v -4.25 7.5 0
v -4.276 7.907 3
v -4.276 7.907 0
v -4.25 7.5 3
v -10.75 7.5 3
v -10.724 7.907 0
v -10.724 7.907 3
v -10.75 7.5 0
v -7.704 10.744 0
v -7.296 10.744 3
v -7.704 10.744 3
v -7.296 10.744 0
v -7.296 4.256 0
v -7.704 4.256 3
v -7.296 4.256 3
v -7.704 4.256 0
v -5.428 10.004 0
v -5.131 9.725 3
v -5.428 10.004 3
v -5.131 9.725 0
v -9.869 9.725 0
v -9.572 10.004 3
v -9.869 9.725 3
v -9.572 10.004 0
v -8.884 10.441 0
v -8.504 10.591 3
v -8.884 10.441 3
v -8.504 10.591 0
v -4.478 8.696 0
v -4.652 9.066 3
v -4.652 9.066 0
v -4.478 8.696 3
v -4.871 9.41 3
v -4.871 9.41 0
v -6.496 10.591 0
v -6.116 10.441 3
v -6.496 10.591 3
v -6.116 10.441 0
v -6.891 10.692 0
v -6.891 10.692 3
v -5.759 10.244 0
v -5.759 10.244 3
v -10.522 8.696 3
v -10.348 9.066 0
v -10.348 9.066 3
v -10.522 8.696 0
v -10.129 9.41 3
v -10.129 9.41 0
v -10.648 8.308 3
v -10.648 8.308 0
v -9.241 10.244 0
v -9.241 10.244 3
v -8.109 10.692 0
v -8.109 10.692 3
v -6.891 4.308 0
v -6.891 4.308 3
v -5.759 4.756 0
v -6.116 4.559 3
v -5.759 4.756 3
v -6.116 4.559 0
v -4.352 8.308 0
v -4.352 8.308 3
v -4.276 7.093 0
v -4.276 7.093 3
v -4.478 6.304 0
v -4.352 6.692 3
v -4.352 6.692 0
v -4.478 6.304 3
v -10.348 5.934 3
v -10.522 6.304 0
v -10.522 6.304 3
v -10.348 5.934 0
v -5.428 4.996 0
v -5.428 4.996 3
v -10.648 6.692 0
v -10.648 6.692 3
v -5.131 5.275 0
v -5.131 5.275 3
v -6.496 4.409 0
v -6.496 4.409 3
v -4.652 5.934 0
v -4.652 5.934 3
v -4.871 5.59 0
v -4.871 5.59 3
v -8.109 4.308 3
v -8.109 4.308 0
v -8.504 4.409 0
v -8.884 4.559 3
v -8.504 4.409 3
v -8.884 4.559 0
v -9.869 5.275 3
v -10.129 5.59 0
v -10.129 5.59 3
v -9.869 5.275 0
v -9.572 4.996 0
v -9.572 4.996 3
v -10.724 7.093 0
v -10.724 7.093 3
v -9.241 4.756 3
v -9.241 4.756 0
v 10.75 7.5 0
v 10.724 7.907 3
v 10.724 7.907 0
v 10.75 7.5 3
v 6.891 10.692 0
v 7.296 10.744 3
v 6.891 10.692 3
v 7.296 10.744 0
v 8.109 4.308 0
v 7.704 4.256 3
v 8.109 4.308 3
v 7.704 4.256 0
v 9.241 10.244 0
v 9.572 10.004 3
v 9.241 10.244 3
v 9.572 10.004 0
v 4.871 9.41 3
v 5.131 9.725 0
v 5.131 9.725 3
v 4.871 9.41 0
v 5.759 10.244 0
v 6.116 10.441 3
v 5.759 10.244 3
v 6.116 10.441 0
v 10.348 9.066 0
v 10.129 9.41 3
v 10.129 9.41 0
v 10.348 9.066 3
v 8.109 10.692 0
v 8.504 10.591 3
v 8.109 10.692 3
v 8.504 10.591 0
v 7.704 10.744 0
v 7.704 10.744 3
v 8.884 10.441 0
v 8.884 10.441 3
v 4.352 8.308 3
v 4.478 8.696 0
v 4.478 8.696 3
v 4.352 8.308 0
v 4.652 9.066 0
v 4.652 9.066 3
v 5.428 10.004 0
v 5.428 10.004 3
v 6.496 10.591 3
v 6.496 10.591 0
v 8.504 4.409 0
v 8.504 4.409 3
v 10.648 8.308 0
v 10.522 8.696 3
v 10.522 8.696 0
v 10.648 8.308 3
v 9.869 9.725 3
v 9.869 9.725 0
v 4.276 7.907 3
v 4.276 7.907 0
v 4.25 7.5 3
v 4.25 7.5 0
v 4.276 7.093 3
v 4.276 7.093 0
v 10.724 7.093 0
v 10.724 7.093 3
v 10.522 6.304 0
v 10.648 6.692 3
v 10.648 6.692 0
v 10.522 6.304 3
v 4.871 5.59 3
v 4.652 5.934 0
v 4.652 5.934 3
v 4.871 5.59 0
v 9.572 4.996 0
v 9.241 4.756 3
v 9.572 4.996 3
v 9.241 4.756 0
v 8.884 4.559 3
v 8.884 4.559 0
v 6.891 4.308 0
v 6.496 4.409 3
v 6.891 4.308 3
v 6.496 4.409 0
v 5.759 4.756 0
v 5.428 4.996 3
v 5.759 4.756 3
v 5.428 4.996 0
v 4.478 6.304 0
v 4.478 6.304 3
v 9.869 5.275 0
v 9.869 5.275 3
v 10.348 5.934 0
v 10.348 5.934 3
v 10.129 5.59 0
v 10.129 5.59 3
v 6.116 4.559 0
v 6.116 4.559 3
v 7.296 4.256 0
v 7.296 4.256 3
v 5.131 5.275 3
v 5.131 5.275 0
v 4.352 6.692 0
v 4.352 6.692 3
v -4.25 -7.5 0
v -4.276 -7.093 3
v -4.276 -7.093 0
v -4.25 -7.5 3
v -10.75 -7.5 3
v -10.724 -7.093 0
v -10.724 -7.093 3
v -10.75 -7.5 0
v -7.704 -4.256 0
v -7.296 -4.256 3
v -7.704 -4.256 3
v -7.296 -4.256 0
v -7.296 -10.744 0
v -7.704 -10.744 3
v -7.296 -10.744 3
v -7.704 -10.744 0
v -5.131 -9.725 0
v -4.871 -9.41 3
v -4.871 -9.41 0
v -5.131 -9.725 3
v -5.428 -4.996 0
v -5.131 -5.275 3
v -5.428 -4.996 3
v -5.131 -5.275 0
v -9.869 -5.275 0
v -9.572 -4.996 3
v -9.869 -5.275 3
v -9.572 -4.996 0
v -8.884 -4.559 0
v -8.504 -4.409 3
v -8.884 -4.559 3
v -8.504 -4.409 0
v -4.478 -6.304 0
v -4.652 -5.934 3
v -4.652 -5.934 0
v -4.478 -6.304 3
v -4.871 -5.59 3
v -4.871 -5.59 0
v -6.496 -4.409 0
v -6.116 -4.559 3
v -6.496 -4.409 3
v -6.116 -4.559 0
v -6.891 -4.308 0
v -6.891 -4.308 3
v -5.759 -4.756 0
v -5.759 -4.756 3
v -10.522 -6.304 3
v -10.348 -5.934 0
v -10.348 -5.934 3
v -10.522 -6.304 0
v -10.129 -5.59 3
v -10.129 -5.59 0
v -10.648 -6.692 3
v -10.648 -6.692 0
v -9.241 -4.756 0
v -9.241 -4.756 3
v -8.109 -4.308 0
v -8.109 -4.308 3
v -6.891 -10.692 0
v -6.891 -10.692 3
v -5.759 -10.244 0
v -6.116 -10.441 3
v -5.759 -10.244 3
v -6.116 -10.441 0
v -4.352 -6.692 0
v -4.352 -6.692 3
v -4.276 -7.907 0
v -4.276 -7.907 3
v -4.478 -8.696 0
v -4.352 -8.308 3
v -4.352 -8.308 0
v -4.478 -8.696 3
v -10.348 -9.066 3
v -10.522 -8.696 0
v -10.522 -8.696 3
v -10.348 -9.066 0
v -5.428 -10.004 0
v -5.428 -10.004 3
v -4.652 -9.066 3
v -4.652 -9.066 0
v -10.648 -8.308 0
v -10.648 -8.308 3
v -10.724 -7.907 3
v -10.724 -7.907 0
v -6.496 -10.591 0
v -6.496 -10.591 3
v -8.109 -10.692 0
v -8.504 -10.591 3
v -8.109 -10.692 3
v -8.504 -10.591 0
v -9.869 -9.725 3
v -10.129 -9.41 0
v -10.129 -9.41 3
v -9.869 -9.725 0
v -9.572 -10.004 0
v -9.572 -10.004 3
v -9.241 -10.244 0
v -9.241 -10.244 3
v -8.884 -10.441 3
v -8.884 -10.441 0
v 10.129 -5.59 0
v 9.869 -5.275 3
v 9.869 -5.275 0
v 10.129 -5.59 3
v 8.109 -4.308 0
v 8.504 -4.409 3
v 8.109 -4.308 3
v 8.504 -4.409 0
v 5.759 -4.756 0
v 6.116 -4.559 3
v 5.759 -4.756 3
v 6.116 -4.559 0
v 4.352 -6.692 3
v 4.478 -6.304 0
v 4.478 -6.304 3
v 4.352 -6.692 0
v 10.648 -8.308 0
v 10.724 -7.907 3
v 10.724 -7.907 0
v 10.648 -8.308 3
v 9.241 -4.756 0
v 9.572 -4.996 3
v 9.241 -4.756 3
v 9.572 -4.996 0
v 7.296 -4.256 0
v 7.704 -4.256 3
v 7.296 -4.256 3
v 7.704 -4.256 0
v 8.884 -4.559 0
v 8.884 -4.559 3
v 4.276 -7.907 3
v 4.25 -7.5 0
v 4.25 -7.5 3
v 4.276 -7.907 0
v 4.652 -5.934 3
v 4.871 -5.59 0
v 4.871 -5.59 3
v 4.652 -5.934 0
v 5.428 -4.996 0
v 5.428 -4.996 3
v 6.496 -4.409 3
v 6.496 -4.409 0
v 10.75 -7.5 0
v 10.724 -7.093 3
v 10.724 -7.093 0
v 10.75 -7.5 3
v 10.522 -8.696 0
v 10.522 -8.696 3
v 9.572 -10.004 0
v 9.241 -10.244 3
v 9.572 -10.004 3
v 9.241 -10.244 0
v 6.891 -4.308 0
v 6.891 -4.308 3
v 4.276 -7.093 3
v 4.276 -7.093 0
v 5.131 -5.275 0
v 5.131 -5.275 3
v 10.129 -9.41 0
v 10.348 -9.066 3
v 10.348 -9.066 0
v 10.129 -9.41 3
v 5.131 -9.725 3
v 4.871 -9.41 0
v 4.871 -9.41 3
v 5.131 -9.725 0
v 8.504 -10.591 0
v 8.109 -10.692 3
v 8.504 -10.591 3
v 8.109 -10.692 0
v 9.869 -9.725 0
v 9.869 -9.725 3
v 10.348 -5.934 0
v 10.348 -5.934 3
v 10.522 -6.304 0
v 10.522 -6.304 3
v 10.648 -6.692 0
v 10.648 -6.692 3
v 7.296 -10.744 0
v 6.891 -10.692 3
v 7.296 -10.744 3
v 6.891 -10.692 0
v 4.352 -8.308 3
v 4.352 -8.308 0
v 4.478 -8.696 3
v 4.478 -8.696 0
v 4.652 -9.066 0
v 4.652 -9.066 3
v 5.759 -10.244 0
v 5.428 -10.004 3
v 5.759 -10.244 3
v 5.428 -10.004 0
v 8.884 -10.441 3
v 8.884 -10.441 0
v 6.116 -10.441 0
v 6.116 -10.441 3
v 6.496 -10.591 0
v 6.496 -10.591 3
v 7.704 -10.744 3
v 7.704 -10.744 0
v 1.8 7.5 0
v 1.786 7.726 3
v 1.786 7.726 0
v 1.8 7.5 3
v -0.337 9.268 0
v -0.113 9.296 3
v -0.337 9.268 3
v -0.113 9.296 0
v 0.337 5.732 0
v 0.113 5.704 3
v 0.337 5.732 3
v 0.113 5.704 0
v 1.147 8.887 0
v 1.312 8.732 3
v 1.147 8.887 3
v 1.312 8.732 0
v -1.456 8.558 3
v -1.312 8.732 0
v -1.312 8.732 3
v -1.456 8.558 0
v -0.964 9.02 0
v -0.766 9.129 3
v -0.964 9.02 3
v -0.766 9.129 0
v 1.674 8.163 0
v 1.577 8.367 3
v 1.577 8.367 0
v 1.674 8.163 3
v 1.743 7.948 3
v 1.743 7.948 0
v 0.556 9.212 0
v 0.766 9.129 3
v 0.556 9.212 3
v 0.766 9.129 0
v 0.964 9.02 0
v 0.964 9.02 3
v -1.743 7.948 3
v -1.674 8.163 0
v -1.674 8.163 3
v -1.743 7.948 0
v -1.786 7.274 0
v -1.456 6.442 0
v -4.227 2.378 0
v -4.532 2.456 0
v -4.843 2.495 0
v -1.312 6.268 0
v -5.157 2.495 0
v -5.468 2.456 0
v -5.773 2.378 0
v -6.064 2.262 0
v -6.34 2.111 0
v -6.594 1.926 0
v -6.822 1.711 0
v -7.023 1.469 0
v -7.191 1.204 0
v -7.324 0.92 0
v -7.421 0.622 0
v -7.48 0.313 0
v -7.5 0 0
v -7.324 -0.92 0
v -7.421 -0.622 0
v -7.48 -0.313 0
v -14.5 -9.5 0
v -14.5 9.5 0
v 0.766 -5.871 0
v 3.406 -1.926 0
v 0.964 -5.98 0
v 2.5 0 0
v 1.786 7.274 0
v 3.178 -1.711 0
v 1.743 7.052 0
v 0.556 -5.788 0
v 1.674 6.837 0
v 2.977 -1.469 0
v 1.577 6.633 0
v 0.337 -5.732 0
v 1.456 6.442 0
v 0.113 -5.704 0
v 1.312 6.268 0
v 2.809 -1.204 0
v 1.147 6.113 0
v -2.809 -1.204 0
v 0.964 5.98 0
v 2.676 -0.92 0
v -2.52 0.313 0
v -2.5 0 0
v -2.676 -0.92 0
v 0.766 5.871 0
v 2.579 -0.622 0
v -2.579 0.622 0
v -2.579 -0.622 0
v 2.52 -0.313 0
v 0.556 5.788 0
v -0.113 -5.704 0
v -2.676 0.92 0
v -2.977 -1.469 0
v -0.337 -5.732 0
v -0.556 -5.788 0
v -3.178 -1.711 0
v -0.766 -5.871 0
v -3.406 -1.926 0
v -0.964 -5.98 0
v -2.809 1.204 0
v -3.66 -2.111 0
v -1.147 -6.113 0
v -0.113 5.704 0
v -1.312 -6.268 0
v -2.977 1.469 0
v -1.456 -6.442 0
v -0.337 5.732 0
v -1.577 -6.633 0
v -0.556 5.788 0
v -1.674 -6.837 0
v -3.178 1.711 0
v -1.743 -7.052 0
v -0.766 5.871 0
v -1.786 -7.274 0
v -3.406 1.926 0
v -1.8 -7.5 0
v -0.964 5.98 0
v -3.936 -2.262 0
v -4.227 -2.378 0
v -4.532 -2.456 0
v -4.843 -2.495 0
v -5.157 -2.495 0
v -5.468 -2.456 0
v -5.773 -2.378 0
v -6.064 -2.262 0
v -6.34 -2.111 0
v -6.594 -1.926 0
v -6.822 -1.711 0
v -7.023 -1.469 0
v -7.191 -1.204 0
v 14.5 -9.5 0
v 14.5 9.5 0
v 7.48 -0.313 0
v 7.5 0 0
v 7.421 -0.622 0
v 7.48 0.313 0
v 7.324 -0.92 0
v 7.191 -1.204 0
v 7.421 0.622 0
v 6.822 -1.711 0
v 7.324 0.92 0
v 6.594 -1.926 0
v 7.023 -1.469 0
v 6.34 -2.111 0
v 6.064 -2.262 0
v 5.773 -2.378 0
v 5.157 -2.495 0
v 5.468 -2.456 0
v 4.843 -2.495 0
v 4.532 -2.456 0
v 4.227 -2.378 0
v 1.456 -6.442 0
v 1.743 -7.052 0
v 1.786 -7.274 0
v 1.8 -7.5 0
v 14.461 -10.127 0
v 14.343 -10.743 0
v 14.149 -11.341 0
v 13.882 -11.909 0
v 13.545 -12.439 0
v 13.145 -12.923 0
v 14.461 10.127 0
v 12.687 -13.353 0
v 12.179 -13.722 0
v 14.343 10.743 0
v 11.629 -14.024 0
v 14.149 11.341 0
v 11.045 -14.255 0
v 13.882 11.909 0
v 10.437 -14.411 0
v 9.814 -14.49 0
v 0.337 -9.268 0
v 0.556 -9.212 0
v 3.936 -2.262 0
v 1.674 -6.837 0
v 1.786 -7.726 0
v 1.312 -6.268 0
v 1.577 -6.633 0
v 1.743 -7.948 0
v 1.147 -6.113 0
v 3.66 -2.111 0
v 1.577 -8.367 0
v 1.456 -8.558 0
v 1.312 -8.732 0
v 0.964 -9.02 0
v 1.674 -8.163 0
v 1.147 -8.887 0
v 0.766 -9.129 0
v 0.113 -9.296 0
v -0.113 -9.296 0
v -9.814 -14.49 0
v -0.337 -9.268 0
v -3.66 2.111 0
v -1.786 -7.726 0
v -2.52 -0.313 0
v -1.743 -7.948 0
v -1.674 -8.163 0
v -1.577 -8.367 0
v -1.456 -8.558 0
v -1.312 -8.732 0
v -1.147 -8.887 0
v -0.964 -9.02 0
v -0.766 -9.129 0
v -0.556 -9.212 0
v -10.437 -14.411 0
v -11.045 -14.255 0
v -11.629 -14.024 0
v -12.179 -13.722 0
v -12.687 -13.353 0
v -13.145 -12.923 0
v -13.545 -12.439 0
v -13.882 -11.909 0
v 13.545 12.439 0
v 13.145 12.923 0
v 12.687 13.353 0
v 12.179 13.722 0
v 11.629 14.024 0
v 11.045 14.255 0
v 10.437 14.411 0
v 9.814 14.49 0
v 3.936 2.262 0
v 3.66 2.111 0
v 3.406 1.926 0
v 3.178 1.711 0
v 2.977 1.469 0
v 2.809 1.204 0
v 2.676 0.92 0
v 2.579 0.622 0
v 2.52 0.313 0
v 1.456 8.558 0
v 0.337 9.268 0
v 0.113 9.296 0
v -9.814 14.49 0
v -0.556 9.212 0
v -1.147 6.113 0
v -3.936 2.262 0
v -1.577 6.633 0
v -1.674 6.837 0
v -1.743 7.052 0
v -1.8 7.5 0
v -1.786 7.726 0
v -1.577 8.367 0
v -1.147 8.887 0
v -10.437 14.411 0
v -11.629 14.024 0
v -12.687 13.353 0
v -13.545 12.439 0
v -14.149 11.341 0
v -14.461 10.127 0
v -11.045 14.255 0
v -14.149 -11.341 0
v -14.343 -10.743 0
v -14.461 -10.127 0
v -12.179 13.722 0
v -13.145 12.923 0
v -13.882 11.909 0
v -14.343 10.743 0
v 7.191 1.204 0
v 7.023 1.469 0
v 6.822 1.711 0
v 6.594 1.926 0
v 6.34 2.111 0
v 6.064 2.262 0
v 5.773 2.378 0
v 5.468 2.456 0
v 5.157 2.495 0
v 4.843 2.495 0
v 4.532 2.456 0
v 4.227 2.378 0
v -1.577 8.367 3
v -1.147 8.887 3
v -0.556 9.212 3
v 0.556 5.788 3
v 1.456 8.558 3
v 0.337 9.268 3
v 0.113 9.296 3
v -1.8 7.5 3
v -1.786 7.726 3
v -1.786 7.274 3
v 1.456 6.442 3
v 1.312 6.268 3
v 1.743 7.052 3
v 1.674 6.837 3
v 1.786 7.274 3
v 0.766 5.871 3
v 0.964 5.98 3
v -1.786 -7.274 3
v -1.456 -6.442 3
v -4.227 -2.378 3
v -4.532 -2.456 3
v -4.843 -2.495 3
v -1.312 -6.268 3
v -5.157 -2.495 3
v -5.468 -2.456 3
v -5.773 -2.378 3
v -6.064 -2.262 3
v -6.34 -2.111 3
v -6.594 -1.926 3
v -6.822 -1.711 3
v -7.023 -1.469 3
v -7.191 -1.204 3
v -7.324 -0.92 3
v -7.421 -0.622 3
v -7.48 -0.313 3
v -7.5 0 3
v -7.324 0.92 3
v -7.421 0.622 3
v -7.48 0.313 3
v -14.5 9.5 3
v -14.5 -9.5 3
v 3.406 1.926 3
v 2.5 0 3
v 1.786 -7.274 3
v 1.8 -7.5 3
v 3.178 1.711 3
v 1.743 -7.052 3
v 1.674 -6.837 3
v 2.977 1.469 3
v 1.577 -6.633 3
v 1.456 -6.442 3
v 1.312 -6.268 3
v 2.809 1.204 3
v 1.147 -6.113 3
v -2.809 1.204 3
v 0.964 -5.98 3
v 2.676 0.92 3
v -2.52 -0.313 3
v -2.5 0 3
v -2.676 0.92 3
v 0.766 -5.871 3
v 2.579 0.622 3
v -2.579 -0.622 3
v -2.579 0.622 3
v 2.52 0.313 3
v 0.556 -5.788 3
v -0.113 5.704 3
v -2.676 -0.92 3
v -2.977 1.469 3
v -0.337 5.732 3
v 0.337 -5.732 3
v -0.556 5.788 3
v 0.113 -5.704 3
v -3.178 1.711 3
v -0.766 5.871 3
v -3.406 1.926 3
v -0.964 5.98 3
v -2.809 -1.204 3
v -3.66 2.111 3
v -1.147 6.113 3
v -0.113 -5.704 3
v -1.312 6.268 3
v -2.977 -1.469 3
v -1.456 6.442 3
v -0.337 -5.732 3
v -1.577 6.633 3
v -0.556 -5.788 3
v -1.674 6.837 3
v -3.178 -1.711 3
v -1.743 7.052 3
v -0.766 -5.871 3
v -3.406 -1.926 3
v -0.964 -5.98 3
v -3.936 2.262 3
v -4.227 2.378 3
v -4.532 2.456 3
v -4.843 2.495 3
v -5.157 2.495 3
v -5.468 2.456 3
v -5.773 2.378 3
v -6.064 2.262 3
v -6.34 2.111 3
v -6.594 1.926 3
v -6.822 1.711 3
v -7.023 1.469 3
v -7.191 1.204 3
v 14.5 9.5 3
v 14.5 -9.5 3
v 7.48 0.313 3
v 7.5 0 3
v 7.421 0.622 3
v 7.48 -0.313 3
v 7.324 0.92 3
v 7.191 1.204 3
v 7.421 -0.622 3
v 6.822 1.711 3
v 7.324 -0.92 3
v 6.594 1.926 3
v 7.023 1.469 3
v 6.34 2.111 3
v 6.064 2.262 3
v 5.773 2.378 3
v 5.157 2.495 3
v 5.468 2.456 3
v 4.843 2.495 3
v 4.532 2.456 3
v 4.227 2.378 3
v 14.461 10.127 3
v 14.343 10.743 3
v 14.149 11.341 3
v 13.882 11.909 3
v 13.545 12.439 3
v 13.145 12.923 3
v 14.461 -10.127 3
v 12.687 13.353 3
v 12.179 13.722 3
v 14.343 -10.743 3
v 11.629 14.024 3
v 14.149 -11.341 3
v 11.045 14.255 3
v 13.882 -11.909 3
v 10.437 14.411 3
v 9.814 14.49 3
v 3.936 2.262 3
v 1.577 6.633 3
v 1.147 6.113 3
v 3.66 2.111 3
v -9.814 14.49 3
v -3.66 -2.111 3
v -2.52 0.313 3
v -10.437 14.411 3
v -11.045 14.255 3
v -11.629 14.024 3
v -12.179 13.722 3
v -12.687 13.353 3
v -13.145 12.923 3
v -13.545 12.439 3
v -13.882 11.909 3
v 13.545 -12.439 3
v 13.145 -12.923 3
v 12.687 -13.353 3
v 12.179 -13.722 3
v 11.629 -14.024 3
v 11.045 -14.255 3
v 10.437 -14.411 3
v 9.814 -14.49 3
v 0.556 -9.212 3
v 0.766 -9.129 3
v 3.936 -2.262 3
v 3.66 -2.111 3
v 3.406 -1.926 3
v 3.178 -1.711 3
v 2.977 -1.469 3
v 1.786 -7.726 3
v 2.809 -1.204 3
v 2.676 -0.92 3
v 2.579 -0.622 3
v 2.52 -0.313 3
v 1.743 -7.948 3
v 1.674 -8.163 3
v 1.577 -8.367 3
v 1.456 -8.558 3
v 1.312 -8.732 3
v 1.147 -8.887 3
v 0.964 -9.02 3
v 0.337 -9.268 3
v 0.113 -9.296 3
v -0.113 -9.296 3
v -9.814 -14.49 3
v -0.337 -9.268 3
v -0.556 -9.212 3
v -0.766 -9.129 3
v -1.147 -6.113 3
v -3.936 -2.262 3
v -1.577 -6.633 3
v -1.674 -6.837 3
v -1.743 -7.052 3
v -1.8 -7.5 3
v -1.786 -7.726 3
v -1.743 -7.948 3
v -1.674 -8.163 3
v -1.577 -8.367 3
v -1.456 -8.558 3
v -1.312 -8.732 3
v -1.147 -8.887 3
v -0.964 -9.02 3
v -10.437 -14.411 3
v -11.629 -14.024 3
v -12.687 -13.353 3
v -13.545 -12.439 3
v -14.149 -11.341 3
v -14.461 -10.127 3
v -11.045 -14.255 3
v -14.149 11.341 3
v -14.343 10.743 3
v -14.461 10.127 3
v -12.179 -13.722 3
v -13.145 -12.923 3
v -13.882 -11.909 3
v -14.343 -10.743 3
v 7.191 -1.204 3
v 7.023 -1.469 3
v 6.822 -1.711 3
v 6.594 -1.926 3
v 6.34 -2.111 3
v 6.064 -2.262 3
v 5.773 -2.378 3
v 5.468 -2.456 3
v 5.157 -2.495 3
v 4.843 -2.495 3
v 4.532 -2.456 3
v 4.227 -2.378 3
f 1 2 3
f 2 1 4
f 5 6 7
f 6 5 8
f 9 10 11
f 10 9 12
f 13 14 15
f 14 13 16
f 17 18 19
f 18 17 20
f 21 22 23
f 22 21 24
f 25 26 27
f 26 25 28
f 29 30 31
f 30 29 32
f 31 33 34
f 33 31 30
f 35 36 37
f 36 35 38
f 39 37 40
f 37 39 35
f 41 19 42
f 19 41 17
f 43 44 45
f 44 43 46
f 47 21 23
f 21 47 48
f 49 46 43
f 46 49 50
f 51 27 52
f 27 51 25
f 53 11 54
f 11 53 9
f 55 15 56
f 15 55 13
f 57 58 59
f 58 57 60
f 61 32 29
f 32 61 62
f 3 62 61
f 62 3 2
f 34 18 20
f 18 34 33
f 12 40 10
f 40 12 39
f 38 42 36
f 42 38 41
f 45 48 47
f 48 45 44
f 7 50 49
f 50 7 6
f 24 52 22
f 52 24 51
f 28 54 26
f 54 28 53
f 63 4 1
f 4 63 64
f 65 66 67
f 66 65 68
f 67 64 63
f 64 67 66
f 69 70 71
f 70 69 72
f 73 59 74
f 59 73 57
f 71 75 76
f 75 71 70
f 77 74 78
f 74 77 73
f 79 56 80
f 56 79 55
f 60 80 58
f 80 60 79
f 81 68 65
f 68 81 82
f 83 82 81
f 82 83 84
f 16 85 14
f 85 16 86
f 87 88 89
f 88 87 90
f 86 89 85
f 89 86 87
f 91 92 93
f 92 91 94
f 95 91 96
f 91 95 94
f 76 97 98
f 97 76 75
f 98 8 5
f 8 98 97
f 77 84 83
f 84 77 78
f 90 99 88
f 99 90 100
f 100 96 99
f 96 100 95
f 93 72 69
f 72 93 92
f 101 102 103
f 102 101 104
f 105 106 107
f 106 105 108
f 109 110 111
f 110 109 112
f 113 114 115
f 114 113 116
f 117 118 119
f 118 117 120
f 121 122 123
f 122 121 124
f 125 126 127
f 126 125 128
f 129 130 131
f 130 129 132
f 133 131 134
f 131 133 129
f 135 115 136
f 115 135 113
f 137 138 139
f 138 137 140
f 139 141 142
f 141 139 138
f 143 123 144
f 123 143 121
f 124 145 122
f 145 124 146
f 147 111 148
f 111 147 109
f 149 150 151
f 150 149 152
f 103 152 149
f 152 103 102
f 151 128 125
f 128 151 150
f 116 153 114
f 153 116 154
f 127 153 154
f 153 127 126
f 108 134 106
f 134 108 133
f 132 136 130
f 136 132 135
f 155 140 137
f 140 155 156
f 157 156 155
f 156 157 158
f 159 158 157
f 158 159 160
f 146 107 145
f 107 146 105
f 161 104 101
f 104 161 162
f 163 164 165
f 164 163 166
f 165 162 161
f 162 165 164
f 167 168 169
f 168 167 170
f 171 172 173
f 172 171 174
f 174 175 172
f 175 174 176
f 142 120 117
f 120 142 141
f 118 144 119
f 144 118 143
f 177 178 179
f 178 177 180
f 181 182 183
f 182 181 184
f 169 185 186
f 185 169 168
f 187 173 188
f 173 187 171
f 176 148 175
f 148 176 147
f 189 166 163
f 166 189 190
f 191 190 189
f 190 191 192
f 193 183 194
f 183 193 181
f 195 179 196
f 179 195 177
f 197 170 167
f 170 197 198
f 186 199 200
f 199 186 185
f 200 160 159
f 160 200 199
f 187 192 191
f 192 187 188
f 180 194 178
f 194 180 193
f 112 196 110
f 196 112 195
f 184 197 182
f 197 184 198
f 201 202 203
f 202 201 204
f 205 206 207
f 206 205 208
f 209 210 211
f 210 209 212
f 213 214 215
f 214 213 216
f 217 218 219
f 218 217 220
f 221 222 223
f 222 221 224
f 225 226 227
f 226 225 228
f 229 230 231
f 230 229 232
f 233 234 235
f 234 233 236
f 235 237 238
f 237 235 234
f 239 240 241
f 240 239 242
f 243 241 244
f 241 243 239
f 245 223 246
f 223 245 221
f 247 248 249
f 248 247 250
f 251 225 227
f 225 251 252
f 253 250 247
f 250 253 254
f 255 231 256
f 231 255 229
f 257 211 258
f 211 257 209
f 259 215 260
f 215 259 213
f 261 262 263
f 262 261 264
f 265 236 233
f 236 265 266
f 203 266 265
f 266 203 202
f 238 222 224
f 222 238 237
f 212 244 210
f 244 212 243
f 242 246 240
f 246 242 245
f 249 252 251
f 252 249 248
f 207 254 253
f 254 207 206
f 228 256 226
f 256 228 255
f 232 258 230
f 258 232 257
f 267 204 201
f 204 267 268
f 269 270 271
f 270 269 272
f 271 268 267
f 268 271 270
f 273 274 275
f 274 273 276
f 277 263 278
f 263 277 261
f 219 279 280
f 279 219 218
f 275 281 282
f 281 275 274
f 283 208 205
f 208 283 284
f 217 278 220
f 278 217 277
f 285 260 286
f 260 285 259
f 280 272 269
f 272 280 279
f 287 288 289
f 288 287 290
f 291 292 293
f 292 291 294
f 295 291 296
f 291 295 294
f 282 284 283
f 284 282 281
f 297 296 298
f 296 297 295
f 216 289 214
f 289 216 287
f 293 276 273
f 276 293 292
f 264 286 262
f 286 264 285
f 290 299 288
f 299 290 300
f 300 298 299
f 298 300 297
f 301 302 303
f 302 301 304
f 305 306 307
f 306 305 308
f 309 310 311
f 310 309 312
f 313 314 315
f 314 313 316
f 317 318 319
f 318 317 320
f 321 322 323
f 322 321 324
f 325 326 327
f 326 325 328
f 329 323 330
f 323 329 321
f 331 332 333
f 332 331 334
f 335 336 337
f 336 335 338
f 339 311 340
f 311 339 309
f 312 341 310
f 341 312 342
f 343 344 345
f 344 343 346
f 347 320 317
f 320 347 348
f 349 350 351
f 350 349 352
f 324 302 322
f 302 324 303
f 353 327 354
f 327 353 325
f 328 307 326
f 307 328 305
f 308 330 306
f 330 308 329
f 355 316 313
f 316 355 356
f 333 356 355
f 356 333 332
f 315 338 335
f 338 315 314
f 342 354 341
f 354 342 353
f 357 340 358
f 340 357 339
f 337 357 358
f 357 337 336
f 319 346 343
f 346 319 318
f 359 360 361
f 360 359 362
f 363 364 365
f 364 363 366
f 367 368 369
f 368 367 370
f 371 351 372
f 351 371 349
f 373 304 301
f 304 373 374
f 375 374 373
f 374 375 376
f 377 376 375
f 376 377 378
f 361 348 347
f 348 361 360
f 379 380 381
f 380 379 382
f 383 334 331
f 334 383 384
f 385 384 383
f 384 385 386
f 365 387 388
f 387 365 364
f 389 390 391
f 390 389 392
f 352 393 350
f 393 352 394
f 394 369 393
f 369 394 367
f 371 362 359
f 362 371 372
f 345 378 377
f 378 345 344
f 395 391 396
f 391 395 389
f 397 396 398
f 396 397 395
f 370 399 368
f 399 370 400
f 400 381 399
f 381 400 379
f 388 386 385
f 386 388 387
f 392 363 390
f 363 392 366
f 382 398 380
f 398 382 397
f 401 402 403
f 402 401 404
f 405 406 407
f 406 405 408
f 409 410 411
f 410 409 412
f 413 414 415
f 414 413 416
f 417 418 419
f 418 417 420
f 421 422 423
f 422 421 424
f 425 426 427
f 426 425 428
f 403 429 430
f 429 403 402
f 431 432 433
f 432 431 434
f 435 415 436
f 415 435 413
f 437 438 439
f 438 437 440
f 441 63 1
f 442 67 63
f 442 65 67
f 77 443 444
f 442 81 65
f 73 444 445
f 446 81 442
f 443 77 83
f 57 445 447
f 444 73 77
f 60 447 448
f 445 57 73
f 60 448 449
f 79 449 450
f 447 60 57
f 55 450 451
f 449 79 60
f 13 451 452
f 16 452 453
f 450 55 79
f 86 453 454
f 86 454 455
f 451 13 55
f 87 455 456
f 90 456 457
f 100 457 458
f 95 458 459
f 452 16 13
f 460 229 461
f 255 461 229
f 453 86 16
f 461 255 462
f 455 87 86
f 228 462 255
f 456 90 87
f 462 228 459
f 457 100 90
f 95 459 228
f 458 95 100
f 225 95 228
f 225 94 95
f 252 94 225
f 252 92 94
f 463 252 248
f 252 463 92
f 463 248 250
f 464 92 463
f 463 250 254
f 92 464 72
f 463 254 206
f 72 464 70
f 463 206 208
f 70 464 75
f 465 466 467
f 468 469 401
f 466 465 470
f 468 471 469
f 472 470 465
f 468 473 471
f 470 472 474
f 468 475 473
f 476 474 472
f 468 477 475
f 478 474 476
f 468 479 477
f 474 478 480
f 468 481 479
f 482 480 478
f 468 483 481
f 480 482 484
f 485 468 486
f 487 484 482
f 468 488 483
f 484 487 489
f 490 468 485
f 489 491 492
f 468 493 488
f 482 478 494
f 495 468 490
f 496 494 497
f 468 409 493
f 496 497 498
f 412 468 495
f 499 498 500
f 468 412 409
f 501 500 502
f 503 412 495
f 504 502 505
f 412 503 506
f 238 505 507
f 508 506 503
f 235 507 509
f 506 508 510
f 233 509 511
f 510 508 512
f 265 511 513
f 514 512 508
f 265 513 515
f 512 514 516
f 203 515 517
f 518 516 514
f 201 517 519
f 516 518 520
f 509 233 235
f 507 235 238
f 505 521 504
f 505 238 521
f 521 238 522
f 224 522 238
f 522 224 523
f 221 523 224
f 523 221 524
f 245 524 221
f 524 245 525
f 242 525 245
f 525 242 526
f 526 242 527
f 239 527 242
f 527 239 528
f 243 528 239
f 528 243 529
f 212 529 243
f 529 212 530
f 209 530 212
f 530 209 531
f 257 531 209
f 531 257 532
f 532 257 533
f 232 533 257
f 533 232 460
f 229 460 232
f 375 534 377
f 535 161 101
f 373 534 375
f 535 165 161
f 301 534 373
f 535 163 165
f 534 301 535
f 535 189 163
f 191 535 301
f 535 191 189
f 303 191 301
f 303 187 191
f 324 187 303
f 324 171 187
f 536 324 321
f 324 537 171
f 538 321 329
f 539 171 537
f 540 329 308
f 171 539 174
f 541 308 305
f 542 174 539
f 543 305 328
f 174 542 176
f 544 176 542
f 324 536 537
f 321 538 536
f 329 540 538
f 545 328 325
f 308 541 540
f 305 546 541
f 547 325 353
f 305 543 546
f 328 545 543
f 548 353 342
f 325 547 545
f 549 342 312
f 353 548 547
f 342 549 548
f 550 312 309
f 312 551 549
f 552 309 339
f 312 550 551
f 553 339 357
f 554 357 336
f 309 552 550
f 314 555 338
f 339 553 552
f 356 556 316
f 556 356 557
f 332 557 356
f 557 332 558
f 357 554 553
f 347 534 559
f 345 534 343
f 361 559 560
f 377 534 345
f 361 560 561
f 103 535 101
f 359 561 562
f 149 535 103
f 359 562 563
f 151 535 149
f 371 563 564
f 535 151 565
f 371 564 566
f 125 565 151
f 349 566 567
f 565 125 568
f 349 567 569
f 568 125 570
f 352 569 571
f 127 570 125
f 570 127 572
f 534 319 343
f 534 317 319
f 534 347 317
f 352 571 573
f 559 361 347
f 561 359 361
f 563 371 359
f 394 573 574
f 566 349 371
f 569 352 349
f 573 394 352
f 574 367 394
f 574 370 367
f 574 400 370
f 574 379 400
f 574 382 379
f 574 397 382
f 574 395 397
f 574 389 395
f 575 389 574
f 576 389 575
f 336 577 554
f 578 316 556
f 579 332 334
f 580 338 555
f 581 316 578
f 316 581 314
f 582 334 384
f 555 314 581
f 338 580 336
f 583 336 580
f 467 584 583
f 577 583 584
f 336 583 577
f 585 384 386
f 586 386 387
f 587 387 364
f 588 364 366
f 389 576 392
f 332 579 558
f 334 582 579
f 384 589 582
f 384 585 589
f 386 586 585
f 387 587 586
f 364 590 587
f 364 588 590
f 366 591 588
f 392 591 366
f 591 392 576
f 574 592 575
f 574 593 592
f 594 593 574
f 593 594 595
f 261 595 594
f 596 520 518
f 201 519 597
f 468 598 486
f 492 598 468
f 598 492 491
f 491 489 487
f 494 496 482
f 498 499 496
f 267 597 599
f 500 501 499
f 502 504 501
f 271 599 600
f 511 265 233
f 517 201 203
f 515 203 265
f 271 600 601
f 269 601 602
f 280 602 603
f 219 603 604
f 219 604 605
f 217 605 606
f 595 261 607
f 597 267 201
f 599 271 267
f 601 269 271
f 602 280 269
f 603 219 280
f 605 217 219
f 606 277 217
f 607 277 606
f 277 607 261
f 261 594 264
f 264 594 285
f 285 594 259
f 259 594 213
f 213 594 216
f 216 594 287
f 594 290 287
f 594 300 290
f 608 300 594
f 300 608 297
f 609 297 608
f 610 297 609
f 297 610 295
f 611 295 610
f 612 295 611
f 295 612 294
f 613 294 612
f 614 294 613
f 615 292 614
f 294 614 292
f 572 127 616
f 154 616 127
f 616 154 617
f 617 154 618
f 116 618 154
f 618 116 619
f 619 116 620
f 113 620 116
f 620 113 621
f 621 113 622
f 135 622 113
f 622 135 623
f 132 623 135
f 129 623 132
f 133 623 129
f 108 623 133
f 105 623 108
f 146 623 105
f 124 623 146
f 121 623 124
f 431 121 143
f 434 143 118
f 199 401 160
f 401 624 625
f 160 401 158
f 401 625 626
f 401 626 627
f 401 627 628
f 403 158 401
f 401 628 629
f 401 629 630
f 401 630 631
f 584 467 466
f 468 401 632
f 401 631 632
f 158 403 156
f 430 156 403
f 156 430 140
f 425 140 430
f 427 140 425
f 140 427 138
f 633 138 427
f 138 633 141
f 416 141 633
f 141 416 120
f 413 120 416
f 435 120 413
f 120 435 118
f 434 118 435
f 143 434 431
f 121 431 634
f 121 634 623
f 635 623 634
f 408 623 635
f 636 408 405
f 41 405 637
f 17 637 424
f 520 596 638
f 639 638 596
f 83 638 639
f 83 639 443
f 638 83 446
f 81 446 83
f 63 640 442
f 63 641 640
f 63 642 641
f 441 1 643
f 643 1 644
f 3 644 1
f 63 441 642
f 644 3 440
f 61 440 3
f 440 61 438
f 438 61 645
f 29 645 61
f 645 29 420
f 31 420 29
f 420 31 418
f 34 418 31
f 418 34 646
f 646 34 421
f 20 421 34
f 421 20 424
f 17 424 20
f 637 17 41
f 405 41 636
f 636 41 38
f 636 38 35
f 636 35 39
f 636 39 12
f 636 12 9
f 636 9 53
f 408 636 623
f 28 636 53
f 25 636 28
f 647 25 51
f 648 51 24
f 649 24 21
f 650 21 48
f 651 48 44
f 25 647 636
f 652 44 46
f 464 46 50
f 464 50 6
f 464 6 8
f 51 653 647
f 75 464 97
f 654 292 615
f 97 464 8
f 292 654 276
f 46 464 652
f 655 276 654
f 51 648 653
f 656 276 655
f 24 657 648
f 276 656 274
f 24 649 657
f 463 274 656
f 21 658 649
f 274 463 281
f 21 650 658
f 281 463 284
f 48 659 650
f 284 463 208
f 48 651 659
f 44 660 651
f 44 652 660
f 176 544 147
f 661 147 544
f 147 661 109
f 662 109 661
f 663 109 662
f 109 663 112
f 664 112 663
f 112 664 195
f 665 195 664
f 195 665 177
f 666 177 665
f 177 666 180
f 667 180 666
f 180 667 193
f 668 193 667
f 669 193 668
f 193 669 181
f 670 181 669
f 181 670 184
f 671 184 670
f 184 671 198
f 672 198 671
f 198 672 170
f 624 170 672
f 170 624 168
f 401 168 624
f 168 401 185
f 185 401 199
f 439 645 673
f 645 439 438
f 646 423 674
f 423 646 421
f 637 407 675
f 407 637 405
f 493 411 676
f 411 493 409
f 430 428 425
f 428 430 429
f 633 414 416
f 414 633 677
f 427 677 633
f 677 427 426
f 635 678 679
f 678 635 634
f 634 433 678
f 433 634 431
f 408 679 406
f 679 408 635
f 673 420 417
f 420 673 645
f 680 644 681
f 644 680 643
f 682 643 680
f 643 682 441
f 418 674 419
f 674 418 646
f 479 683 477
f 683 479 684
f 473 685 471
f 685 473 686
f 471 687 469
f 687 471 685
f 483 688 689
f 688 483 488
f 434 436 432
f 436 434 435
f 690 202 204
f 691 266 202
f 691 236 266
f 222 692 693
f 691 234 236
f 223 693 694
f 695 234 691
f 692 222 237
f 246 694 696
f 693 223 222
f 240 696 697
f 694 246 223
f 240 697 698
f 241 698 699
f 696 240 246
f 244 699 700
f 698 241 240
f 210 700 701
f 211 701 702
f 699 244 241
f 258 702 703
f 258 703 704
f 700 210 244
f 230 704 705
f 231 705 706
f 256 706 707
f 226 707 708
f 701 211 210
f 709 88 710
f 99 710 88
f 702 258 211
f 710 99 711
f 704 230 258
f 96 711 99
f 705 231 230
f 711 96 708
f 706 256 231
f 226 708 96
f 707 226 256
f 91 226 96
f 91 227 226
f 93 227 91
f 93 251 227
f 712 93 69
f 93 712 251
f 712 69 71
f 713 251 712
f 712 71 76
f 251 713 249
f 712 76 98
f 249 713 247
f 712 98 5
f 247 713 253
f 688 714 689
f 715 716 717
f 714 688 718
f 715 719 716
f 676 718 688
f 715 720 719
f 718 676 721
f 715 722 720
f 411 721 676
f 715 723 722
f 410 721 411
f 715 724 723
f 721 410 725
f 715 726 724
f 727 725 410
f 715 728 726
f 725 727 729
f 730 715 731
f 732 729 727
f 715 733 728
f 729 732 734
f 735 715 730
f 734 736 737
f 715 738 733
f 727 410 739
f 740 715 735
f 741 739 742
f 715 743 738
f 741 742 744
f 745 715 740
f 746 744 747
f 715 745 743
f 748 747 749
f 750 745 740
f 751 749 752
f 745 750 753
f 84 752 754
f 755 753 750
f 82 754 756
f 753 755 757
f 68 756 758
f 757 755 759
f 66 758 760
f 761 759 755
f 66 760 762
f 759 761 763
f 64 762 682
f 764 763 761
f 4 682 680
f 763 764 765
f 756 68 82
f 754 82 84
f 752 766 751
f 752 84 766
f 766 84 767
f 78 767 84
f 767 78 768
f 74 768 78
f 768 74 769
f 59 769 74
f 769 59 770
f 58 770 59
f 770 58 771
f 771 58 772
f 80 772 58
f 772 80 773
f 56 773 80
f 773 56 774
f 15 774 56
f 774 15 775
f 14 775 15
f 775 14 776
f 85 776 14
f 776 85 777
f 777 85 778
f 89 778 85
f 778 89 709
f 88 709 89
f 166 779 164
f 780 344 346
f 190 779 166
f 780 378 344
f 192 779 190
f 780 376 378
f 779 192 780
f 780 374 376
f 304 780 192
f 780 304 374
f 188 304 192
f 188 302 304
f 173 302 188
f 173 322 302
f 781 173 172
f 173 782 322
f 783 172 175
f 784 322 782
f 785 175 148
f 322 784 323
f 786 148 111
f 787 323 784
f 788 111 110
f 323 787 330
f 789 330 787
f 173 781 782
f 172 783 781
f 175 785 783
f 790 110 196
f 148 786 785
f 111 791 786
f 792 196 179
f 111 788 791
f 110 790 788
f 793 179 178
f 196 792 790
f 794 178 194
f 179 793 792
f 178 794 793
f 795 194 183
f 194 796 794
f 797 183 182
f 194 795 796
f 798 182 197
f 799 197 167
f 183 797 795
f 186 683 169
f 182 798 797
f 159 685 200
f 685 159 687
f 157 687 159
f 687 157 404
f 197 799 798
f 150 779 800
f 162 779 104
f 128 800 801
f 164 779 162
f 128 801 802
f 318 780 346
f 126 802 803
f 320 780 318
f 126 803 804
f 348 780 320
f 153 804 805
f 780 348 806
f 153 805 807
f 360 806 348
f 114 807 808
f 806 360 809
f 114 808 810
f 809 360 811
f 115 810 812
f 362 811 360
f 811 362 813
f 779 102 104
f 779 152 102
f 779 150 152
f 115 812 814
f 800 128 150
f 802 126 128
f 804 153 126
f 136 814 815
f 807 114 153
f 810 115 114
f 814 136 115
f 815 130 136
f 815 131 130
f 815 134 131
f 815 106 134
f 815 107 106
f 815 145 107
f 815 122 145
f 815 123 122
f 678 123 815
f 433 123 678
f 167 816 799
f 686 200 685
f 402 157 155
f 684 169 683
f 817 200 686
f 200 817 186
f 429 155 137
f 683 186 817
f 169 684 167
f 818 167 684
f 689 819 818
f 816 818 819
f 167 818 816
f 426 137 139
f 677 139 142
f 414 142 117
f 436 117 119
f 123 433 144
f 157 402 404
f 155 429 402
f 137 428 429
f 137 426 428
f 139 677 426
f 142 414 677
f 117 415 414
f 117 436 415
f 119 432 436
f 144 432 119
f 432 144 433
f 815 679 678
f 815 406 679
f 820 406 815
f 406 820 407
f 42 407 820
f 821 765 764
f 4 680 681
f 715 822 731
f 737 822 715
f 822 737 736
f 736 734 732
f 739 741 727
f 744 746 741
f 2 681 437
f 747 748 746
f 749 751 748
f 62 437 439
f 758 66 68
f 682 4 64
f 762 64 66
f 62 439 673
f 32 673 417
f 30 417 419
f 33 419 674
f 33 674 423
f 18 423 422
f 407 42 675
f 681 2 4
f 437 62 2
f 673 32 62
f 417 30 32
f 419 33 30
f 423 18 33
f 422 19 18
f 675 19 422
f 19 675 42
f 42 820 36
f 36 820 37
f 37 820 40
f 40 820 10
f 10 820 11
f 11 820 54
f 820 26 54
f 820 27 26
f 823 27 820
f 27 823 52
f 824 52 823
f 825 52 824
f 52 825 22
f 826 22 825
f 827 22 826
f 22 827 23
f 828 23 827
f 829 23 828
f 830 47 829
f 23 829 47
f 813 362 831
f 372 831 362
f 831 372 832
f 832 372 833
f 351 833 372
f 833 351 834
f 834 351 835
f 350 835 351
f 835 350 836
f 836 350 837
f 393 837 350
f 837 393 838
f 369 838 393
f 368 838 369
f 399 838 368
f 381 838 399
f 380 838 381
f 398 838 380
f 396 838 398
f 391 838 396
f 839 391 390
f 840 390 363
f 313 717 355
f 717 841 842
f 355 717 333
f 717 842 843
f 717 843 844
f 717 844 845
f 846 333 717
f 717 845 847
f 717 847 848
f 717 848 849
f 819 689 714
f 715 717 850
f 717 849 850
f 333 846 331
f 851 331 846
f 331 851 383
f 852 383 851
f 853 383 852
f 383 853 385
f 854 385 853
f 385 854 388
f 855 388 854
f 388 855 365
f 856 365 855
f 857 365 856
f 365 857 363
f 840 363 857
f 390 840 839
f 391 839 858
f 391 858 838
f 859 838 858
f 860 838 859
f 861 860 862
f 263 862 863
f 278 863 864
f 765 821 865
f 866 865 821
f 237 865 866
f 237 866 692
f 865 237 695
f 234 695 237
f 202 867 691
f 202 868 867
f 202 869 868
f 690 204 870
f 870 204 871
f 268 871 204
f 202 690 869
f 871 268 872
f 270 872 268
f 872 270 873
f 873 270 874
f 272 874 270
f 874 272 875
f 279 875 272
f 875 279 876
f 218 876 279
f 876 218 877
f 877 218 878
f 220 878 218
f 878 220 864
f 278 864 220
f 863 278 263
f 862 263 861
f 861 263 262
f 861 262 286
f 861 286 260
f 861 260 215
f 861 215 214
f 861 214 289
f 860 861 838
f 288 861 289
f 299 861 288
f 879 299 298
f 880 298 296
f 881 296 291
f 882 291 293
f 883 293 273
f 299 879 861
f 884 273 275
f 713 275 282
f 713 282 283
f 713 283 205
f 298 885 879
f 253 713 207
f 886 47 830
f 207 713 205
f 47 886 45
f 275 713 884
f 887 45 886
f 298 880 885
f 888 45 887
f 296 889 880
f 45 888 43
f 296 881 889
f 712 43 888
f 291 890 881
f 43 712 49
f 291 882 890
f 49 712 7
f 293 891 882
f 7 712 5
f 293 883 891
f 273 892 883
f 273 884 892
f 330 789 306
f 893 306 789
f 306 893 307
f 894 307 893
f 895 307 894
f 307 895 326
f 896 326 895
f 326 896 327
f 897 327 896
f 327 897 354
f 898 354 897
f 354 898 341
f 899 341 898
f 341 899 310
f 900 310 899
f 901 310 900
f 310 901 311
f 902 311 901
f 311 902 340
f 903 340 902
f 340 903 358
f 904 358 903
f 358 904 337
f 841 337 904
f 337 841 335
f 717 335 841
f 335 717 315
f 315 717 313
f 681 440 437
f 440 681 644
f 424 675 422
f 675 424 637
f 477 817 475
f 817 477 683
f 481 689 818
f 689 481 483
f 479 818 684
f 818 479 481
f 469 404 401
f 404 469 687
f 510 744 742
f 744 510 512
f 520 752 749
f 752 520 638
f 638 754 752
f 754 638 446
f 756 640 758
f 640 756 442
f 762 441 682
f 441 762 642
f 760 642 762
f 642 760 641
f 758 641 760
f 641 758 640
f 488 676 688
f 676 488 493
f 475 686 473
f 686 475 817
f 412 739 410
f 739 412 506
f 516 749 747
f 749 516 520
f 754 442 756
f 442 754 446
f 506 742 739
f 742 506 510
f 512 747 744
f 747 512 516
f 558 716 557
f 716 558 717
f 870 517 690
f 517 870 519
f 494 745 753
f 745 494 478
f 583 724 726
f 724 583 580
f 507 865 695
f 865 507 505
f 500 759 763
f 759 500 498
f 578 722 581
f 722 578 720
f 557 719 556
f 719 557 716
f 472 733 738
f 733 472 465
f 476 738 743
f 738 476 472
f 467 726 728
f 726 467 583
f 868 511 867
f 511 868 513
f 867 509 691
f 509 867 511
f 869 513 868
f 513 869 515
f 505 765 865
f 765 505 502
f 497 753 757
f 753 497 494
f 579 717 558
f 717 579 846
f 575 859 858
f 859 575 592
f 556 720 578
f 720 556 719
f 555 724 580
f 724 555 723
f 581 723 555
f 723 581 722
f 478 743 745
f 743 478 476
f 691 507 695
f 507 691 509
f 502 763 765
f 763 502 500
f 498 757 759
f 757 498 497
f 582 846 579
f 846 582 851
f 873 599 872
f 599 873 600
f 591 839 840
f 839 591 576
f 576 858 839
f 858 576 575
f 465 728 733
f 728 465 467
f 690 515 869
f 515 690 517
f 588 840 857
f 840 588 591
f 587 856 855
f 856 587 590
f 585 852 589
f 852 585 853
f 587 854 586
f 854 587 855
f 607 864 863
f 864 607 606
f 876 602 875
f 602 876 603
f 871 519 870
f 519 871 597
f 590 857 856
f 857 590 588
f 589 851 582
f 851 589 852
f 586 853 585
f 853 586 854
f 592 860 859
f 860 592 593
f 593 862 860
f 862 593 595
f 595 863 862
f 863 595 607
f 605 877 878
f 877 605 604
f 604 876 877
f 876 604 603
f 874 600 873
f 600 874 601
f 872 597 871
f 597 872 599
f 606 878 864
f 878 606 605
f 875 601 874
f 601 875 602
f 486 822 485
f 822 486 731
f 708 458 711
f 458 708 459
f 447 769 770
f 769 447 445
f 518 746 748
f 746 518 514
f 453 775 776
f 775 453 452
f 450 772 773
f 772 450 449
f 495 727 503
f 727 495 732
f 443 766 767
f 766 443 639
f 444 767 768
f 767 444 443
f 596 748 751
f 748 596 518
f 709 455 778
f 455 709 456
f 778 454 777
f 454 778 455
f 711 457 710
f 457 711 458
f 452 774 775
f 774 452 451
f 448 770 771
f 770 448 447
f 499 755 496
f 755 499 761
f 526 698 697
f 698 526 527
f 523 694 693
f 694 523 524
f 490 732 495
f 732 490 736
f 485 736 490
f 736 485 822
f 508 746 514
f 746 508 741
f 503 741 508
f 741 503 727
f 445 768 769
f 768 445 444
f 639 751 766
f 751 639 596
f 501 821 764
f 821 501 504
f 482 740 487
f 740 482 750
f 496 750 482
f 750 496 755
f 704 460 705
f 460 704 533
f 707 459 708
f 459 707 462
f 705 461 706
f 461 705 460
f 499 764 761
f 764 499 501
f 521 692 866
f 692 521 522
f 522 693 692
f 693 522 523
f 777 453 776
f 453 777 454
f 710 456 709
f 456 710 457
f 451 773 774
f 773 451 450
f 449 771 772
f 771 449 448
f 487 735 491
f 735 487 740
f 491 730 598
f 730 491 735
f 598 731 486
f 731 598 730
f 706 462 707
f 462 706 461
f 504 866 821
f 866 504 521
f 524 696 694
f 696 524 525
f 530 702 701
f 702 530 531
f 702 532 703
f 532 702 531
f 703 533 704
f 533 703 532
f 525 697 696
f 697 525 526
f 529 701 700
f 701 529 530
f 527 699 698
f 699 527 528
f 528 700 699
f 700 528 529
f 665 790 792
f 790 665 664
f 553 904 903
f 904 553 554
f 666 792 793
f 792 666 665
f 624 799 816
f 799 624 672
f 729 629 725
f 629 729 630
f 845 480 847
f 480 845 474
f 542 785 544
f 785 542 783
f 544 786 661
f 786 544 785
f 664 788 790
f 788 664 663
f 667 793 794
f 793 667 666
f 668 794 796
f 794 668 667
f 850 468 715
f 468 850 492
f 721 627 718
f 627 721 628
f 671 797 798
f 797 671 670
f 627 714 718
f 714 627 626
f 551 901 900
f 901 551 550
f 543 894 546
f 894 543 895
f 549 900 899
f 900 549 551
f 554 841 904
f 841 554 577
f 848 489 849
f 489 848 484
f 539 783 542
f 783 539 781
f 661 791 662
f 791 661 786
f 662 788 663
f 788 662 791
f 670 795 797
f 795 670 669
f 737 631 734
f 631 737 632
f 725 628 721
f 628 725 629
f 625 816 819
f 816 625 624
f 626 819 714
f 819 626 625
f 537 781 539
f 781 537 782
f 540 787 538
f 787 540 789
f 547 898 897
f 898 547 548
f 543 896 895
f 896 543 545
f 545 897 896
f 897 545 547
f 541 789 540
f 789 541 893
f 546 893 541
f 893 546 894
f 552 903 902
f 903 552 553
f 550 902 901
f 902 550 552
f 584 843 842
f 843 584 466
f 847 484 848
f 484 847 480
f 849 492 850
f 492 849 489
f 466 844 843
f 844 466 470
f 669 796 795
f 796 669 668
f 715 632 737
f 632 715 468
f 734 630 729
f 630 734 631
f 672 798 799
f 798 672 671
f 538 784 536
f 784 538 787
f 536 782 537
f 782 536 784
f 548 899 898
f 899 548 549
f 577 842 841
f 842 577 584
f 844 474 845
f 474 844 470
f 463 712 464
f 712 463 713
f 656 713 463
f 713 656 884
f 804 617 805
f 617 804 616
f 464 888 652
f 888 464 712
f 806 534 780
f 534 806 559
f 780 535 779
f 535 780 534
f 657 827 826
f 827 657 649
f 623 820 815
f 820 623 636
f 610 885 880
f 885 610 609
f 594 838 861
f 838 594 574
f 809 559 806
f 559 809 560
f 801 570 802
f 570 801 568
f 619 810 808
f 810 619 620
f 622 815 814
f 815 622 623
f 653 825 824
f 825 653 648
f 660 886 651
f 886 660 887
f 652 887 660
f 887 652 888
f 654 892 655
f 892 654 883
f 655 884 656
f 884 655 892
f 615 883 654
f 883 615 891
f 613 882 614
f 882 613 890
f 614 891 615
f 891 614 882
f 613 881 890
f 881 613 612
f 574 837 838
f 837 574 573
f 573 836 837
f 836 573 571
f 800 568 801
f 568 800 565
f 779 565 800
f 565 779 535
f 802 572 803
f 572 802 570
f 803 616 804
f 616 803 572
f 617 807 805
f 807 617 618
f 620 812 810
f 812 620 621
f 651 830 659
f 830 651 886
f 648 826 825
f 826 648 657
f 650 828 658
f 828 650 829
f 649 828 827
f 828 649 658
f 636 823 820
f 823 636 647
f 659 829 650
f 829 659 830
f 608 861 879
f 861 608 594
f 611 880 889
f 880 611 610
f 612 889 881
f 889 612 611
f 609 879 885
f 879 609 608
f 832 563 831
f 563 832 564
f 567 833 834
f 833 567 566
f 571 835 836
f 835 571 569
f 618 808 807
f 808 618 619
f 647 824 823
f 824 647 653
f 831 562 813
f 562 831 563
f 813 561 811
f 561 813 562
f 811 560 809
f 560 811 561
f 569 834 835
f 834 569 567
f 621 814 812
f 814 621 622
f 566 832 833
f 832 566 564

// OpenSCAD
$fn = 50;


difference() {
	union() {
		hull() {
			translate(v = [-9.5000000000, 9.5000000000, 0]) {
				cylinder(h = 3, r = 5);
			}
			translate(v = [9.5000000000, 9.5000000000, 0]) {
				cylinder(h = 3, r = 5);
			}
			translate(v = [-9.5000000000, -9.5000000000, 0]) {
				cylinder(h = 3, r = 5);
			}
			translate(v = [9.5000000000, -9.5000000000, 0]) {
				cylinder(h = 3, r = 5);
			}
		}
	}
	union() {
		#translate(v = [-7.5000000000, 7.5000000000, 0]) {
			cylinder(h = 3, r = 3.2500000000);
		}
		#translate(v = [7.5000000000, 7.5000000000, 0]) {
			cylinder(h = 3, r = 3.2500000000);
		}
		#translate(v = [-7.5000000000, -7.5000000000, 0]) {
			cylinder(h = 3, r = 3.2500000000);
		}
		#translate(v = [7.5000000000, -7.5000000000, 0]) {
			cylinder(h = 3, r = 3.2500000000);
		}
		#translate(v = [-7.5000000000, -7.5000000000, -100.0000000000]) {
			cylinder(h = 200, r = 3.2500000000);
		}
		#translate(v = [-7.5000000000, 7.5000000000, -100.0000000000]) {
			cylinder(h = 200, r = 3.2500000000);
		}
		#translate(v = [7.5000000000, -7.5000000000, -100.0000000000]) {
			cylinder(h = 200, r = 3.2500000000);
		}
		#translate(v = [7.5000000000, 7.5000000000, -100.0000000000]) {
			cylinder(h = 200, r = 3.2500000000);
		}
		#translate(v = [-7.5000000000, 7.5000000000, 0]) {
			cylinder(h = 3, r = 1.8000000000);
		}
		#translate(v = [0.0000000000, 7.5000000000, 0]) {
			cylinder(h = 3, r = 1.8000000000);
		}
		#translate(v = [7.5000000000, 7.5000000000, 0]) {
			cylinder(h = 3, r = 1.8000000000);
		}
		#translate(v = [-7.5000000000, -7.5000000000, 0]) {
			cylinder(h = 3, r = 1.8000000000);
		}
		#translate(v = [0.0000000000, -7.5000000000, 0]) {
			cylinder(h = 3, r = 1.8000000000);
		}
		#translate(v = [7.5000000000, -7.5000000000, 0]) {
			cylinder(h = 3, r = 1.8000000000);
		}
		#translate(v = [-7.5000000000, 7.5000000000, 0]) {
			cylinder(h = 3, r = 1.8000000000);
		}
		#translate(v = [0.0000000000, 7.5000000000, 0]) {
			cylinder(h = 3, r = 1.8000000000);
		}
		#translate(v = [7.5000000000, 7.5000000000, 0]) {
			cylinder(h = 3, r = 1.8000000000);
		}
		#translate(v = [-7.5000000000, -7.5000000000, 0]) {
			cylinder(h = 3, r = 1.8000000000);
		}
		#translate(v = [0.0000000000, -7.5000000000, 0]) {
			cylinder(h = 3, r = 1.8000000000);
		}
		#translate(v = [7.5000000000, -7.5000000000, 0]) {
			cylinder(h = 3, r = 1.8000000000);
		}
		#translate(v = [-7.5000000000, 7.5000000000, 0]) {
			cylinder(h = 3, r = 1.8000000000);
		}
		#translate(v = [0.0000000000, 7.5000000000, 0]) {
			cylinder(h = 3, r = 1.8000000000);
		}
		#translate(v = [7.5000000000, 7.5000000000, 0]) {
			cylinder(h = 3, r = 1.8000000000);
		}
		#translate(v = [-7.5000000000, -7.5000000000, 0]) {
			cylinder(h = 3, r = 1.8000000000);
		}
		#translate(v = [0.0000000000, -7.5000000000, 0]) {
			cylinder(h = 3, r = 1.8000000000);
		}
		#translate(v = [7.5000000000, -7.5000000000, 0]) {
			cylinder(h = 3, r = 1.8000000000);
		}
		#translate(v = [-5.0000000000, 0, 0]) {
			cylinder(h = 3, r = 2.5000000000);
		}
		#translate(v = [5.0000000000, 0, 0]) {
			cylinder(h = 3, r = 2.5000000000);
		}
	}
}
